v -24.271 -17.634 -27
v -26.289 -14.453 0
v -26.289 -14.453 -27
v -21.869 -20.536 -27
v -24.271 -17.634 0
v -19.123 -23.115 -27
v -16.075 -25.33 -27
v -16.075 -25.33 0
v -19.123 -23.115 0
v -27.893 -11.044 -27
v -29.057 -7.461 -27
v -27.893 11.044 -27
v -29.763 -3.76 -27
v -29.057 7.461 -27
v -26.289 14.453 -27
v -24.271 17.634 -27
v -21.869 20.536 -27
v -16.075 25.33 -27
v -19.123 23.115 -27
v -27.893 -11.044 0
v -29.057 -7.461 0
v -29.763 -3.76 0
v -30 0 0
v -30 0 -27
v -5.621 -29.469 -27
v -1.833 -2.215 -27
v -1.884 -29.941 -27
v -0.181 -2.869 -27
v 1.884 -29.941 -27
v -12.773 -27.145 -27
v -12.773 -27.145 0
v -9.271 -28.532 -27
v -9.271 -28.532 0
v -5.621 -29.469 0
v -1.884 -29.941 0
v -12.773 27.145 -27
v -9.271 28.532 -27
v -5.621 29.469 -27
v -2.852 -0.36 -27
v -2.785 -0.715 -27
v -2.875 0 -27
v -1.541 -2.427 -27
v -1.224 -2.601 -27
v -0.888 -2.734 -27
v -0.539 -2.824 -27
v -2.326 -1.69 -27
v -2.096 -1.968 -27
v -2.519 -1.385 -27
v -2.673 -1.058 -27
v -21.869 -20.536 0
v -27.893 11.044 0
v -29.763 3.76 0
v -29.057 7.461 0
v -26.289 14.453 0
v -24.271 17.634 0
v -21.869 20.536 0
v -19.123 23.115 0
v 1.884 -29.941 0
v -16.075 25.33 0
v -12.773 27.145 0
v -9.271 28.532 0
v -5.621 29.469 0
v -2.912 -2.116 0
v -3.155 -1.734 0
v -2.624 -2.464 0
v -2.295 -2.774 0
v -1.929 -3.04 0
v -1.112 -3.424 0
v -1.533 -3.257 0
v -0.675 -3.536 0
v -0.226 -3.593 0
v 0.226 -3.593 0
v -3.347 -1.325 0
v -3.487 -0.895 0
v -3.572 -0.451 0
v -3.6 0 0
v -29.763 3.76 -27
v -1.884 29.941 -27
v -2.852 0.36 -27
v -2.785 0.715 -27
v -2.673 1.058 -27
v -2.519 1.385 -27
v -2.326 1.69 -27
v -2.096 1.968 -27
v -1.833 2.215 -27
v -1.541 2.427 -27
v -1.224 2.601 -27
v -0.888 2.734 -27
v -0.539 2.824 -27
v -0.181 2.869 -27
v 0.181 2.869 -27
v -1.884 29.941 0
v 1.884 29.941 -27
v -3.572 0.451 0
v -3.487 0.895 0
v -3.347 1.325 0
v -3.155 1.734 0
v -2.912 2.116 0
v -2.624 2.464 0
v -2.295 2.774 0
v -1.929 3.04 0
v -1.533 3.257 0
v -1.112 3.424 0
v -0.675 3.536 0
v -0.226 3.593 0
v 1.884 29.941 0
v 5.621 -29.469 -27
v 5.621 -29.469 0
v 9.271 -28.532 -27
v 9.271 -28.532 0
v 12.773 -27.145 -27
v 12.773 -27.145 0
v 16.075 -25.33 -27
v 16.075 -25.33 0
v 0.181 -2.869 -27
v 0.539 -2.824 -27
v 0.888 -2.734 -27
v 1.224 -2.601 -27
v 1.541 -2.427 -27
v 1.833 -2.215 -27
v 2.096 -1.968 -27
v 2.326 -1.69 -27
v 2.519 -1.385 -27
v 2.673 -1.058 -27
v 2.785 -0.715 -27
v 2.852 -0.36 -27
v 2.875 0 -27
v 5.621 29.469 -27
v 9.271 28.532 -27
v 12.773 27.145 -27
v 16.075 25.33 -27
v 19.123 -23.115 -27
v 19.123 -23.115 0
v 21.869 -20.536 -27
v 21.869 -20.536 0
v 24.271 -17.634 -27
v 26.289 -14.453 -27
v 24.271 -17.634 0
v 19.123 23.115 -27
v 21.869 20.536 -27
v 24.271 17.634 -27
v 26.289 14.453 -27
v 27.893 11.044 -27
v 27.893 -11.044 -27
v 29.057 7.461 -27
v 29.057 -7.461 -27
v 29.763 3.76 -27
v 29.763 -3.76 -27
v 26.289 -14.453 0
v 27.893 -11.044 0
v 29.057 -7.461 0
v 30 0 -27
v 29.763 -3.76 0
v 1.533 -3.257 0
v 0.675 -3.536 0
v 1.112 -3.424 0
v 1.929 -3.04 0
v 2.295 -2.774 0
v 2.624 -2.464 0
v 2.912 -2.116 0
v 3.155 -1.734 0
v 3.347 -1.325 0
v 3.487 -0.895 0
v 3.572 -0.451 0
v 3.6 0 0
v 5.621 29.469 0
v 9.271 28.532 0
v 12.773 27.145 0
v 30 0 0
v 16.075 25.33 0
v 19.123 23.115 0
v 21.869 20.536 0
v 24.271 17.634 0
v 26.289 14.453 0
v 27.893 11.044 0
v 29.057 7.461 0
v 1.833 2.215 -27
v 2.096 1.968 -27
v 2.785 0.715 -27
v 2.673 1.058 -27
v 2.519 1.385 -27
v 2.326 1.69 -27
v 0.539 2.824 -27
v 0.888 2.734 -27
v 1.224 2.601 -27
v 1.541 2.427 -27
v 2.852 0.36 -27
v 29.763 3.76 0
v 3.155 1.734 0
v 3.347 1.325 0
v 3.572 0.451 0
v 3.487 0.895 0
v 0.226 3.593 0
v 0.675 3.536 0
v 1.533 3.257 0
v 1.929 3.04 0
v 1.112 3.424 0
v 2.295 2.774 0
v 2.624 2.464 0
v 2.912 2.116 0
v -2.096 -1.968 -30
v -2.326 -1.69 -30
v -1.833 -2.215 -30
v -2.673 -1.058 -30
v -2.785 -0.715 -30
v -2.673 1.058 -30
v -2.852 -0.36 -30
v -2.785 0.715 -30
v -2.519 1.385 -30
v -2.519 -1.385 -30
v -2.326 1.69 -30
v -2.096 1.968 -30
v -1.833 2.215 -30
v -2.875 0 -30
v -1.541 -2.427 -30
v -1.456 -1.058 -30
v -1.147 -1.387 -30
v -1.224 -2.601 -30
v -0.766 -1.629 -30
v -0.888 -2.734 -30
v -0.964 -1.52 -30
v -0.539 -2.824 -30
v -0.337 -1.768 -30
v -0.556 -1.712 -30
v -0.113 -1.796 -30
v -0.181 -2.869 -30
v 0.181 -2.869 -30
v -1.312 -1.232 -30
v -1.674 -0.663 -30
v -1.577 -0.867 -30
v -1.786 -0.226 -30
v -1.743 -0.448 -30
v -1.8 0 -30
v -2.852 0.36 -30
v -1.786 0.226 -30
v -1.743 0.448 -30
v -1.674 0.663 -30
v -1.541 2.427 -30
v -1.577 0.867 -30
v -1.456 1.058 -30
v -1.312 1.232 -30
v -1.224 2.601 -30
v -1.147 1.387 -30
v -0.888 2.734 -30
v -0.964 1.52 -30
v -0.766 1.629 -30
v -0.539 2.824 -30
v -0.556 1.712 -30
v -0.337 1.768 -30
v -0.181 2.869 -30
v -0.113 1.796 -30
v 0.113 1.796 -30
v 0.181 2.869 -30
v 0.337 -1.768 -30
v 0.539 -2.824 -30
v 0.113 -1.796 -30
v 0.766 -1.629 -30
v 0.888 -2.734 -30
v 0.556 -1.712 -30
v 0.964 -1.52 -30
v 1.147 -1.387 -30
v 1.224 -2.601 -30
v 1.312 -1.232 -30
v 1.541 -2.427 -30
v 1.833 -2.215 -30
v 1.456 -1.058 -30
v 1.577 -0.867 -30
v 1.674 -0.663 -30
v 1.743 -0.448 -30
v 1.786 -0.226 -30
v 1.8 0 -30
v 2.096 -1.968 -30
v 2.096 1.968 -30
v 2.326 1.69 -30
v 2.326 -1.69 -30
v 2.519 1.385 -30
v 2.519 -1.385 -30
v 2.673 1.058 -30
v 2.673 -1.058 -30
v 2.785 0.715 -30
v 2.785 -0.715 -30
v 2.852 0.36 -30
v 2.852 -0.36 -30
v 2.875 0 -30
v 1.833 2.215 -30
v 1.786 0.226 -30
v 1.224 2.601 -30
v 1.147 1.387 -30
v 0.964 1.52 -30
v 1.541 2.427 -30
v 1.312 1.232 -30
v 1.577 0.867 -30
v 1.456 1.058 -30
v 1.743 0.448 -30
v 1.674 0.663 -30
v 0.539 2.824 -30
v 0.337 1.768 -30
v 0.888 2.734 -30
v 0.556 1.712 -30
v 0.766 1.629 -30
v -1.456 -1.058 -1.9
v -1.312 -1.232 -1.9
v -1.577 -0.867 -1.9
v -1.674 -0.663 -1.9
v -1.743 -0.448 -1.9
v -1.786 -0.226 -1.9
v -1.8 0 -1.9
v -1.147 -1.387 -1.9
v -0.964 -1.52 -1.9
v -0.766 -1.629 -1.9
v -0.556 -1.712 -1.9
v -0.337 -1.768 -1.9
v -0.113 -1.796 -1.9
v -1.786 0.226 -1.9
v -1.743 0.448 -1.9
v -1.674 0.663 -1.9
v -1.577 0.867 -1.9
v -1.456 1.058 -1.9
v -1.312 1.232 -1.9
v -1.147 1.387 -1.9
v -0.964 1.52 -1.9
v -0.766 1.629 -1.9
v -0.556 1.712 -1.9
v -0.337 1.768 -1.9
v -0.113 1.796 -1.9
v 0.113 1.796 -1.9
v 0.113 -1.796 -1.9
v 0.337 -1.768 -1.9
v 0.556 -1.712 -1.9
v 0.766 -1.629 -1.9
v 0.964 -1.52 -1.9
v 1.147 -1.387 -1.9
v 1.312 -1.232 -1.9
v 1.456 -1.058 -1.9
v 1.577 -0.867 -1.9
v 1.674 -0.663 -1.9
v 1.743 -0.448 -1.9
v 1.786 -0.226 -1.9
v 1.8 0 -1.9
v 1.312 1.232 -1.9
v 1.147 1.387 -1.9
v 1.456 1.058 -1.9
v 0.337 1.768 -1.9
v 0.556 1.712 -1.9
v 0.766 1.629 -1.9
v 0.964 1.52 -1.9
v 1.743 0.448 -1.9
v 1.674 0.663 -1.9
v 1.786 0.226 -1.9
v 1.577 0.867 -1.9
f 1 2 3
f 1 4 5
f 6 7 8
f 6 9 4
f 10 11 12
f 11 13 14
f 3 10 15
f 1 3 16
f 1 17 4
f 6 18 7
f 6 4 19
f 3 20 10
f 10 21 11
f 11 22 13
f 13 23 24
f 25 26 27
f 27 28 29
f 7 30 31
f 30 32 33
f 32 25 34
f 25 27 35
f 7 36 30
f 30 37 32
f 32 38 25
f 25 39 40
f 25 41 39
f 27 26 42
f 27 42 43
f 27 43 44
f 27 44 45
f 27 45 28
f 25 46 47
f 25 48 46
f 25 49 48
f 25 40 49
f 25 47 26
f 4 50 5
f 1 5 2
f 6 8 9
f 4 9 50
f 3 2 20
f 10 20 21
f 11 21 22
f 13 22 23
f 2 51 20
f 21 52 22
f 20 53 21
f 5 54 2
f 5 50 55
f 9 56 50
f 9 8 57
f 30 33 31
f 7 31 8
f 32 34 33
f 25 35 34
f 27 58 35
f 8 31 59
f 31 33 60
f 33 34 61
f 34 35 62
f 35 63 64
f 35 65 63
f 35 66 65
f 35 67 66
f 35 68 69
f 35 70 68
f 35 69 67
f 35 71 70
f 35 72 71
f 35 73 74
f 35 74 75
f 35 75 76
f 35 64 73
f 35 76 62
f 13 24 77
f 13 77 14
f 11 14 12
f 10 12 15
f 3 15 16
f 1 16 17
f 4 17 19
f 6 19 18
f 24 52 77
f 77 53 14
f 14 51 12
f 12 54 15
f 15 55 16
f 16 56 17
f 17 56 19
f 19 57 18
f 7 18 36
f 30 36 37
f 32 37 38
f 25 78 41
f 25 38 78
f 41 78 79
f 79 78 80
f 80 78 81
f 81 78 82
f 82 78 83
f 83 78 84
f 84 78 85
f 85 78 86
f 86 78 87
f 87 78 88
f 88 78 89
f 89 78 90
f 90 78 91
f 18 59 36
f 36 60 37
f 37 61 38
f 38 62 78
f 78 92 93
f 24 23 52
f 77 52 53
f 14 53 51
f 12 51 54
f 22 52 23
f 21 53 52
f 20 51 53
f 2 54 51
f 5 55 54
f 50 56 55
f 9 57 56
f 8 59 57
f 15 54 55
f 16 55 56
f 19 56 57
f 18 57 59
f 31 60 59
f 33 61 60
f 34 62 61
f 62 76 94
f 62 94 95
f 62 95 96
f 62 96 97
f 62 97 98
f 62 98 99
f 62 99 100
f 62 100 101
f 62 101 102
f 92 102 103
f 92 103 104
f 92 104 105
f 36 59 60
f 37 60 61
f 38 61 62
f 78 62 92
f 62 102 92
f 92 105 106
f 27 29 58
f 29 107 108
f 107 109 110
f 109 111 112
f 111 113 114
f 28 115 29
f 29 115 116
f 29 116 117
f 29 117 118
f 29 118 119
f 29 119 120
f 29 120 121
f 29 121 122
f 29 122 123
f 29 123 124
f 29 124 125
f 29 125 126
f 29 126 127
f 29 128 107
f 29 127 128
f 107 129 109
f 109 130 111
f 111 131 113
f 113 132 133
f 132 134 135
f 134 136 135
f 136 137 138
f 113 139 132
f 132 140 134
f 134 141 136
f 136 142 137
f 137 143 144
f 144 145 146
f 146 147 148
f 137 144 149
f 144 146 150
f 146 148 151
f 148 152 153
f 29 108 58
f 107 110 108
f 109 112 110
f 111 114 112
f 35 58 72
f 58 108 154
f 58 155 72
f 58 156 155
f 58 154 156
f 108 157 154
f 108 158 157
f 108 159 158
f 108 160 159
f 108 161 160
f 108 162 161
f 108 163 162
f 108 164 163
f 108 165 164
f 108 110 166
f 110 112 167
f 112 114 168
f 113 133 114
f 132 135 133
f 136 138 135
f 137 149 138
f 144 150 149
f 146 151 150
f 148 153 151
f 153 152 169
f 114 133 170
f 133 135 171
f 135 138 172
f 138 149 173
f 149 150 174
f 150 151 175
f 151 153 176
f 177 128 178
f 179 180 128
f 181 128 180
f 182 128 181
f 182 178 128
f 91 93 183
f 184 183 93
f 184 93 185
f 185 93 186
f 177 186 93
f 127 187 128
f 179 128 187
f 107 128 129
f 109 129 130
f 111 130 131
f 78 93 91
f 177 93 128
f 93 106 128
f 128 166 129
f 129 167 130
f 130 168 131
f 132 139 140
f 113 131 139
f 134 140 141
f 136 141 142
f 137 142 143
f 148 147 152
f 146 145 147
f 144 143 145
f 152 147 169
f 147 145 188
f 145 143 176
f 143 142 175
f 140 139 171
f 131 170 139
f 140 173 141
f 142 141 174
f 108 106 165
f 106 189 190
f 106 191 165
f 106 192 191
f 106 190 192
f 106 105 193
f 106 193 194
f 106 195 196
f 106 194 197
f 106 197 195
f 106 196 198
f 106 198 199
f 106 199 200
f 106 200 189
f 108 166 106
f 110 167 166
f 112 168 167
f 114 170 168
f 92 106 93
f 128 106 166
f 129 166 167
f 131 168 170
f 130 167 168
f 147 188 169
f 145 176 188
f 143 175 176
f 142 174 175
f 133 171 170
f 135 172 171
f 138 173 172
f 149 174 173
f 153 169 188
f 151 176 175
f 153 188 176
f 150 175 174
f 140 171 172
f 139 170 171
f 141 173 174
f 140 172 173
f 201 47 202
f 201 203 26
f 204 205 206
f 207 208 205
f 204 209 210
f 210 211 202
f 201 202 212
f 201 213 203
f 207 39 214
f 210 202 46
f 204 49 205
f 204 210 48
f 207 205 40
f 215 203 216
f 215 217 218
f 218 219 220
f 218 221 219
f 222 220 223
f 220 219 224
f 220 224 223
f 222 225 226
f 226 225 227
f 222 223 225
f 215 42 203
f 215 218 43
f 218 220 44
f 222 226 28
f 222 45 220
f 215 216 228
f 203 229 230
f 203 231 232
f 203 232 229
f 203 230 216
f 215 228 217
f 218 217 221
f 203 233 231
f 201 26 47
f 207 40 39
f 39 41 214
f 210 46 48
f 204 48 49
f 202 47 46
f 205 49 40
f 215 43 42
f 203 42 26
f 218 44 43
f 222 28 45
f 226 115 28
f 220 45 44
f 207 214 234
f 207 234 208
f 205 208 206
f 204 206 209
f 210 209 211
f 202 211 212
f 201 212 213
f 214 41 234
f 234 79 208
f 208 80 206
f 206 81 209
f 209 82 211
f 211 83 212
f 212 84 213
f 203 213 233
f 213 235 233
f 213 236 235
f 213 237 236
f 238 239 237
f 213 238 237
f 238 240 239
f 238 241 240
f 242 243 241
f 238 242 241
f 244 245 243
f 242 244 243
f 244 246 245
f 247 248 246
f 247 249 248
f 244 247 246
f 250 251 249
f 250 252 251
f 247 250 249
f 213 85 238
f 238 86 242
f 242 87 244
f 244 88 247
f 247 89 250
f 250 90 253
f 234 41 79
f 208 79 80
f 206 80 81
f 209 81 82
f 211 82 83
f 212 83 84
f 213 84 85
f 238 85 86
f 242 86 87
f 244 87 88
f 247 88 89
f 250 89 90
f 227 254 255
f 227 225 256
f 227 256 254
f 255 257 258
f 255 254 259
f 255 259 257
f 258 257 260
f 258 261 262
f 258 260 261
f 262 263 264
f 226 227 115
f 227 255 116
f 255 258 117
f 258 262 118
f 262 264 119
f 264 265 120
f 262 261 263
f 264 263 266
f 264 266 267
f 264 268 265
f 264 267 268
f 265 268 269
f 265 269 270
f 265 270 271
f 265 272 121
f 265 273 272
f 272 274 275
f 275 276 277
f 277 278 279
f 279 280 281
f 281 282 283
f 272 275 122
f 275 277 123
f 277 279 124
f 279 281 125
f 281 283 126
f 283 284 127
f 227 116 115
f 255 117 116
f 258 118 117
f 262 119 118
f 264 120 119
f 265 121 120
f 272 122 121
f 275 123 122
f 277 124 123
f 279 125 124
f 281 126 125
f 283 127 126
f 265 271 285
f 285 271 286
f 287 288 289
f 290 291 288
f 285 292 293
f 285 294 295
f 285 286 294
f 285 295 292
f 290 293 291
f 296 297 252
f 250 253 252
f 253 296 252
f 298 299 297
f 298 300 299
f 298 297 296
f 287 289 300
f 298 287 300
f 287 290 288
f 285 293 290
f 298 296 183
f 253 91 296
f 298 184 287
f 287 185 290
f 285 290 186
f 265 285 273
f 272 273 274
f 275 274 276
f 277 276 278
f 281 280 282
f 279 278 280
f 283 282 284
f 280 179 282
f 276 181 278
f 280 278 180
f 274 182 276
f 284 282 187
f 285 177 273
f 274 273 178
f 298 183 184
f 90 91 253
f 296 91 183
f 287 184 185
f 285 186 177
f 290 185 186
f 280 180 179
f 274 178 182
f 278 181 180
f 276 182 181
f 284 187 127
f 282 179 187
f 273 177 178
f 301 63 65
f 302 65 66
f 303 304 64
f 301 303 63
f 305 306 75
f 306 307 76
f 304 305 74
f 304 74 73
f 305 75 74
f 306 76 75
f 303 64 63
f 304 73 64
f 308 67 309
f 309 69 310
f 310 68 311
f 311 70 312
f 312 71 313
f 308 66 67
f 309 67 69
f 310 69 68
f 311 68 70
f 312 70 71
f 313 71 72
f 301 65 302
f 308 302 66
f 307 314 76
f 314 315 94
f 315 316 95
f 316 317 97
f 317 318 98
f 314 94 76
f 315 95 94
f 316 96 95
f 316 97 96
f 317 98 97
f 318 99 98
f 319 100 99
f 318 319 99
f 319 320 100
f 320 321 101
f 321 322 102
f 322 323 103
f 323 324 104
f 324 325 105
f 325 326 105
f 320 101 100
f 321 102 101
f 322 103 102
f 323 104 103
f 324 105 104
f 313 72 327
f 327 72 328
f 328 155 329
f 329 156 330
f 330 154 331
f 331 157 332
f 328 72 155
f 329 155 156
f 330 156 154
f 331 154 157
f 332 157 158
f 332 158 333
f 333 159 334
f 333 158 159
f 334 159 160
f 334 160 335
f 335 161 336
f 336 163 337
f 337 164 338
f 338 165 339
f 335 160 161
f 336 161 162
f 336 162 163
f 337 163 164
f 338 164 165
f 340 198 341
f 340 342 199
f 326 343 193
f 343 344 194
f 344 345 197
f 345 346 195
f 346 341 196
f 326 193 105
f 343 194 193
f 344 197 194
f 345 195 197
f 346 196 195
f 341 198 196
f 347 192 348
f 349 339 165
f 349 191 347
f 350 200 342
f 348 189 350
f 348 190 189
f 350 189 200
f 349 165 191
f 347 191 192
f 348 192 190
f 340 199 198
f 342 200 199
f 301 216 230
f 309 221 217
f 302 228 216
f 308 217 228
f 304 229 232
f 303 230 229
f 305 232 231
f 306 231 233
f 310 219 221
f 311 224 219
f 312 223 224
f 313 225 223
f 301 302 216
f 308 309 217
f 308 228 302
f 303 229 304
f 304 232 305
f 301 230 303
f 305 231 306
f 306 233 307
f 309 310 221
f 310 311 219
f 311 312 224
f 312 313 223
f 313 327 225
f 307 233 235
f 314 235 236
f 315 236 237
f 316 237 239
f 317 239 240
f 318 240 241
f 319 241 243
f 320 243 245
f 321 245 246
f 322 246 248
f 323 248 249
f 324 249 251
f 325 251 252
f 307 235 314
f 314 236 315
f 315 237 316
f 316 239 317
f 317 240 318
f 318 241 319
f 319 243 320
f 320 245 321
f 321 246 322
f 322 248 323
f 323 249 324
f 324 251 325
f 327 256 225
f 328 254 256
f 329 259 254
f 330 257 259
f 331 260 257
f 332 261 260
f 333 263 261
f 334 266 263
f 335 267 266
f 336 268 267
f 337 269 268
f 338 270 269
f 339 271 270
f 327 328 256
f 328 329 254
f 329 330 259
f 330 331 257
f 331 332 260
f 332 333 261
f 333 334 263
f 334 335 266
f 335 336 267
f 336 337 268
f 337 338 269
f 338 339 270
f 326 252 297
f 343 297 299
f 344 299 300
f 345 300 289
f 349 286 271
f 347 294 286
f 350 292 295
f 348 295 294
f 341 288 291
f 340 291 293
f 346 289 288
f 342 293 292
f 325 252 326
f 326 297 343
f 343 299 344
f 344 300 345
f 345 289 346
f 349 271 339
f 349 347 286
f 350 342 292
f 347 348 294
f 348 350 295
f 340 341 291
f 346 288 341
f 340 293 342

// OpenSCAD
$fn = 50;

difference() {
	union() {
		translate(v = [0, 0, -27.0]) {
			cylinder(h = 27, r = 30.0);
		}
		#translate(v = [0, 0, -30.0]) {
			cylinder(h = 30, r = 2.875);
		}
	}
	union() {
		translate(v = [0, 0, 0]) {
			rotate(a = [0, 0, 0]) {
				difference() {
					union() {
						translate(v = [0, 0, -30.0]) {
							cylinder(h = 30, r = 1.5);
						}
						translate(v = [0, 0, -1.9]) {
							cylinder(h = 1.9, r1 = 1.8, r2 = 3.6);
						}
						translate(v = [0, 0, -30.0]) {
							cylinder(h = 30, r = 1.8);
						}
						translate(v = [0, 0, -30.0]) {
							cylinder(h = 30, r = 1.5);
						}
					}
					union();
				}
			}
		}
	}
}
